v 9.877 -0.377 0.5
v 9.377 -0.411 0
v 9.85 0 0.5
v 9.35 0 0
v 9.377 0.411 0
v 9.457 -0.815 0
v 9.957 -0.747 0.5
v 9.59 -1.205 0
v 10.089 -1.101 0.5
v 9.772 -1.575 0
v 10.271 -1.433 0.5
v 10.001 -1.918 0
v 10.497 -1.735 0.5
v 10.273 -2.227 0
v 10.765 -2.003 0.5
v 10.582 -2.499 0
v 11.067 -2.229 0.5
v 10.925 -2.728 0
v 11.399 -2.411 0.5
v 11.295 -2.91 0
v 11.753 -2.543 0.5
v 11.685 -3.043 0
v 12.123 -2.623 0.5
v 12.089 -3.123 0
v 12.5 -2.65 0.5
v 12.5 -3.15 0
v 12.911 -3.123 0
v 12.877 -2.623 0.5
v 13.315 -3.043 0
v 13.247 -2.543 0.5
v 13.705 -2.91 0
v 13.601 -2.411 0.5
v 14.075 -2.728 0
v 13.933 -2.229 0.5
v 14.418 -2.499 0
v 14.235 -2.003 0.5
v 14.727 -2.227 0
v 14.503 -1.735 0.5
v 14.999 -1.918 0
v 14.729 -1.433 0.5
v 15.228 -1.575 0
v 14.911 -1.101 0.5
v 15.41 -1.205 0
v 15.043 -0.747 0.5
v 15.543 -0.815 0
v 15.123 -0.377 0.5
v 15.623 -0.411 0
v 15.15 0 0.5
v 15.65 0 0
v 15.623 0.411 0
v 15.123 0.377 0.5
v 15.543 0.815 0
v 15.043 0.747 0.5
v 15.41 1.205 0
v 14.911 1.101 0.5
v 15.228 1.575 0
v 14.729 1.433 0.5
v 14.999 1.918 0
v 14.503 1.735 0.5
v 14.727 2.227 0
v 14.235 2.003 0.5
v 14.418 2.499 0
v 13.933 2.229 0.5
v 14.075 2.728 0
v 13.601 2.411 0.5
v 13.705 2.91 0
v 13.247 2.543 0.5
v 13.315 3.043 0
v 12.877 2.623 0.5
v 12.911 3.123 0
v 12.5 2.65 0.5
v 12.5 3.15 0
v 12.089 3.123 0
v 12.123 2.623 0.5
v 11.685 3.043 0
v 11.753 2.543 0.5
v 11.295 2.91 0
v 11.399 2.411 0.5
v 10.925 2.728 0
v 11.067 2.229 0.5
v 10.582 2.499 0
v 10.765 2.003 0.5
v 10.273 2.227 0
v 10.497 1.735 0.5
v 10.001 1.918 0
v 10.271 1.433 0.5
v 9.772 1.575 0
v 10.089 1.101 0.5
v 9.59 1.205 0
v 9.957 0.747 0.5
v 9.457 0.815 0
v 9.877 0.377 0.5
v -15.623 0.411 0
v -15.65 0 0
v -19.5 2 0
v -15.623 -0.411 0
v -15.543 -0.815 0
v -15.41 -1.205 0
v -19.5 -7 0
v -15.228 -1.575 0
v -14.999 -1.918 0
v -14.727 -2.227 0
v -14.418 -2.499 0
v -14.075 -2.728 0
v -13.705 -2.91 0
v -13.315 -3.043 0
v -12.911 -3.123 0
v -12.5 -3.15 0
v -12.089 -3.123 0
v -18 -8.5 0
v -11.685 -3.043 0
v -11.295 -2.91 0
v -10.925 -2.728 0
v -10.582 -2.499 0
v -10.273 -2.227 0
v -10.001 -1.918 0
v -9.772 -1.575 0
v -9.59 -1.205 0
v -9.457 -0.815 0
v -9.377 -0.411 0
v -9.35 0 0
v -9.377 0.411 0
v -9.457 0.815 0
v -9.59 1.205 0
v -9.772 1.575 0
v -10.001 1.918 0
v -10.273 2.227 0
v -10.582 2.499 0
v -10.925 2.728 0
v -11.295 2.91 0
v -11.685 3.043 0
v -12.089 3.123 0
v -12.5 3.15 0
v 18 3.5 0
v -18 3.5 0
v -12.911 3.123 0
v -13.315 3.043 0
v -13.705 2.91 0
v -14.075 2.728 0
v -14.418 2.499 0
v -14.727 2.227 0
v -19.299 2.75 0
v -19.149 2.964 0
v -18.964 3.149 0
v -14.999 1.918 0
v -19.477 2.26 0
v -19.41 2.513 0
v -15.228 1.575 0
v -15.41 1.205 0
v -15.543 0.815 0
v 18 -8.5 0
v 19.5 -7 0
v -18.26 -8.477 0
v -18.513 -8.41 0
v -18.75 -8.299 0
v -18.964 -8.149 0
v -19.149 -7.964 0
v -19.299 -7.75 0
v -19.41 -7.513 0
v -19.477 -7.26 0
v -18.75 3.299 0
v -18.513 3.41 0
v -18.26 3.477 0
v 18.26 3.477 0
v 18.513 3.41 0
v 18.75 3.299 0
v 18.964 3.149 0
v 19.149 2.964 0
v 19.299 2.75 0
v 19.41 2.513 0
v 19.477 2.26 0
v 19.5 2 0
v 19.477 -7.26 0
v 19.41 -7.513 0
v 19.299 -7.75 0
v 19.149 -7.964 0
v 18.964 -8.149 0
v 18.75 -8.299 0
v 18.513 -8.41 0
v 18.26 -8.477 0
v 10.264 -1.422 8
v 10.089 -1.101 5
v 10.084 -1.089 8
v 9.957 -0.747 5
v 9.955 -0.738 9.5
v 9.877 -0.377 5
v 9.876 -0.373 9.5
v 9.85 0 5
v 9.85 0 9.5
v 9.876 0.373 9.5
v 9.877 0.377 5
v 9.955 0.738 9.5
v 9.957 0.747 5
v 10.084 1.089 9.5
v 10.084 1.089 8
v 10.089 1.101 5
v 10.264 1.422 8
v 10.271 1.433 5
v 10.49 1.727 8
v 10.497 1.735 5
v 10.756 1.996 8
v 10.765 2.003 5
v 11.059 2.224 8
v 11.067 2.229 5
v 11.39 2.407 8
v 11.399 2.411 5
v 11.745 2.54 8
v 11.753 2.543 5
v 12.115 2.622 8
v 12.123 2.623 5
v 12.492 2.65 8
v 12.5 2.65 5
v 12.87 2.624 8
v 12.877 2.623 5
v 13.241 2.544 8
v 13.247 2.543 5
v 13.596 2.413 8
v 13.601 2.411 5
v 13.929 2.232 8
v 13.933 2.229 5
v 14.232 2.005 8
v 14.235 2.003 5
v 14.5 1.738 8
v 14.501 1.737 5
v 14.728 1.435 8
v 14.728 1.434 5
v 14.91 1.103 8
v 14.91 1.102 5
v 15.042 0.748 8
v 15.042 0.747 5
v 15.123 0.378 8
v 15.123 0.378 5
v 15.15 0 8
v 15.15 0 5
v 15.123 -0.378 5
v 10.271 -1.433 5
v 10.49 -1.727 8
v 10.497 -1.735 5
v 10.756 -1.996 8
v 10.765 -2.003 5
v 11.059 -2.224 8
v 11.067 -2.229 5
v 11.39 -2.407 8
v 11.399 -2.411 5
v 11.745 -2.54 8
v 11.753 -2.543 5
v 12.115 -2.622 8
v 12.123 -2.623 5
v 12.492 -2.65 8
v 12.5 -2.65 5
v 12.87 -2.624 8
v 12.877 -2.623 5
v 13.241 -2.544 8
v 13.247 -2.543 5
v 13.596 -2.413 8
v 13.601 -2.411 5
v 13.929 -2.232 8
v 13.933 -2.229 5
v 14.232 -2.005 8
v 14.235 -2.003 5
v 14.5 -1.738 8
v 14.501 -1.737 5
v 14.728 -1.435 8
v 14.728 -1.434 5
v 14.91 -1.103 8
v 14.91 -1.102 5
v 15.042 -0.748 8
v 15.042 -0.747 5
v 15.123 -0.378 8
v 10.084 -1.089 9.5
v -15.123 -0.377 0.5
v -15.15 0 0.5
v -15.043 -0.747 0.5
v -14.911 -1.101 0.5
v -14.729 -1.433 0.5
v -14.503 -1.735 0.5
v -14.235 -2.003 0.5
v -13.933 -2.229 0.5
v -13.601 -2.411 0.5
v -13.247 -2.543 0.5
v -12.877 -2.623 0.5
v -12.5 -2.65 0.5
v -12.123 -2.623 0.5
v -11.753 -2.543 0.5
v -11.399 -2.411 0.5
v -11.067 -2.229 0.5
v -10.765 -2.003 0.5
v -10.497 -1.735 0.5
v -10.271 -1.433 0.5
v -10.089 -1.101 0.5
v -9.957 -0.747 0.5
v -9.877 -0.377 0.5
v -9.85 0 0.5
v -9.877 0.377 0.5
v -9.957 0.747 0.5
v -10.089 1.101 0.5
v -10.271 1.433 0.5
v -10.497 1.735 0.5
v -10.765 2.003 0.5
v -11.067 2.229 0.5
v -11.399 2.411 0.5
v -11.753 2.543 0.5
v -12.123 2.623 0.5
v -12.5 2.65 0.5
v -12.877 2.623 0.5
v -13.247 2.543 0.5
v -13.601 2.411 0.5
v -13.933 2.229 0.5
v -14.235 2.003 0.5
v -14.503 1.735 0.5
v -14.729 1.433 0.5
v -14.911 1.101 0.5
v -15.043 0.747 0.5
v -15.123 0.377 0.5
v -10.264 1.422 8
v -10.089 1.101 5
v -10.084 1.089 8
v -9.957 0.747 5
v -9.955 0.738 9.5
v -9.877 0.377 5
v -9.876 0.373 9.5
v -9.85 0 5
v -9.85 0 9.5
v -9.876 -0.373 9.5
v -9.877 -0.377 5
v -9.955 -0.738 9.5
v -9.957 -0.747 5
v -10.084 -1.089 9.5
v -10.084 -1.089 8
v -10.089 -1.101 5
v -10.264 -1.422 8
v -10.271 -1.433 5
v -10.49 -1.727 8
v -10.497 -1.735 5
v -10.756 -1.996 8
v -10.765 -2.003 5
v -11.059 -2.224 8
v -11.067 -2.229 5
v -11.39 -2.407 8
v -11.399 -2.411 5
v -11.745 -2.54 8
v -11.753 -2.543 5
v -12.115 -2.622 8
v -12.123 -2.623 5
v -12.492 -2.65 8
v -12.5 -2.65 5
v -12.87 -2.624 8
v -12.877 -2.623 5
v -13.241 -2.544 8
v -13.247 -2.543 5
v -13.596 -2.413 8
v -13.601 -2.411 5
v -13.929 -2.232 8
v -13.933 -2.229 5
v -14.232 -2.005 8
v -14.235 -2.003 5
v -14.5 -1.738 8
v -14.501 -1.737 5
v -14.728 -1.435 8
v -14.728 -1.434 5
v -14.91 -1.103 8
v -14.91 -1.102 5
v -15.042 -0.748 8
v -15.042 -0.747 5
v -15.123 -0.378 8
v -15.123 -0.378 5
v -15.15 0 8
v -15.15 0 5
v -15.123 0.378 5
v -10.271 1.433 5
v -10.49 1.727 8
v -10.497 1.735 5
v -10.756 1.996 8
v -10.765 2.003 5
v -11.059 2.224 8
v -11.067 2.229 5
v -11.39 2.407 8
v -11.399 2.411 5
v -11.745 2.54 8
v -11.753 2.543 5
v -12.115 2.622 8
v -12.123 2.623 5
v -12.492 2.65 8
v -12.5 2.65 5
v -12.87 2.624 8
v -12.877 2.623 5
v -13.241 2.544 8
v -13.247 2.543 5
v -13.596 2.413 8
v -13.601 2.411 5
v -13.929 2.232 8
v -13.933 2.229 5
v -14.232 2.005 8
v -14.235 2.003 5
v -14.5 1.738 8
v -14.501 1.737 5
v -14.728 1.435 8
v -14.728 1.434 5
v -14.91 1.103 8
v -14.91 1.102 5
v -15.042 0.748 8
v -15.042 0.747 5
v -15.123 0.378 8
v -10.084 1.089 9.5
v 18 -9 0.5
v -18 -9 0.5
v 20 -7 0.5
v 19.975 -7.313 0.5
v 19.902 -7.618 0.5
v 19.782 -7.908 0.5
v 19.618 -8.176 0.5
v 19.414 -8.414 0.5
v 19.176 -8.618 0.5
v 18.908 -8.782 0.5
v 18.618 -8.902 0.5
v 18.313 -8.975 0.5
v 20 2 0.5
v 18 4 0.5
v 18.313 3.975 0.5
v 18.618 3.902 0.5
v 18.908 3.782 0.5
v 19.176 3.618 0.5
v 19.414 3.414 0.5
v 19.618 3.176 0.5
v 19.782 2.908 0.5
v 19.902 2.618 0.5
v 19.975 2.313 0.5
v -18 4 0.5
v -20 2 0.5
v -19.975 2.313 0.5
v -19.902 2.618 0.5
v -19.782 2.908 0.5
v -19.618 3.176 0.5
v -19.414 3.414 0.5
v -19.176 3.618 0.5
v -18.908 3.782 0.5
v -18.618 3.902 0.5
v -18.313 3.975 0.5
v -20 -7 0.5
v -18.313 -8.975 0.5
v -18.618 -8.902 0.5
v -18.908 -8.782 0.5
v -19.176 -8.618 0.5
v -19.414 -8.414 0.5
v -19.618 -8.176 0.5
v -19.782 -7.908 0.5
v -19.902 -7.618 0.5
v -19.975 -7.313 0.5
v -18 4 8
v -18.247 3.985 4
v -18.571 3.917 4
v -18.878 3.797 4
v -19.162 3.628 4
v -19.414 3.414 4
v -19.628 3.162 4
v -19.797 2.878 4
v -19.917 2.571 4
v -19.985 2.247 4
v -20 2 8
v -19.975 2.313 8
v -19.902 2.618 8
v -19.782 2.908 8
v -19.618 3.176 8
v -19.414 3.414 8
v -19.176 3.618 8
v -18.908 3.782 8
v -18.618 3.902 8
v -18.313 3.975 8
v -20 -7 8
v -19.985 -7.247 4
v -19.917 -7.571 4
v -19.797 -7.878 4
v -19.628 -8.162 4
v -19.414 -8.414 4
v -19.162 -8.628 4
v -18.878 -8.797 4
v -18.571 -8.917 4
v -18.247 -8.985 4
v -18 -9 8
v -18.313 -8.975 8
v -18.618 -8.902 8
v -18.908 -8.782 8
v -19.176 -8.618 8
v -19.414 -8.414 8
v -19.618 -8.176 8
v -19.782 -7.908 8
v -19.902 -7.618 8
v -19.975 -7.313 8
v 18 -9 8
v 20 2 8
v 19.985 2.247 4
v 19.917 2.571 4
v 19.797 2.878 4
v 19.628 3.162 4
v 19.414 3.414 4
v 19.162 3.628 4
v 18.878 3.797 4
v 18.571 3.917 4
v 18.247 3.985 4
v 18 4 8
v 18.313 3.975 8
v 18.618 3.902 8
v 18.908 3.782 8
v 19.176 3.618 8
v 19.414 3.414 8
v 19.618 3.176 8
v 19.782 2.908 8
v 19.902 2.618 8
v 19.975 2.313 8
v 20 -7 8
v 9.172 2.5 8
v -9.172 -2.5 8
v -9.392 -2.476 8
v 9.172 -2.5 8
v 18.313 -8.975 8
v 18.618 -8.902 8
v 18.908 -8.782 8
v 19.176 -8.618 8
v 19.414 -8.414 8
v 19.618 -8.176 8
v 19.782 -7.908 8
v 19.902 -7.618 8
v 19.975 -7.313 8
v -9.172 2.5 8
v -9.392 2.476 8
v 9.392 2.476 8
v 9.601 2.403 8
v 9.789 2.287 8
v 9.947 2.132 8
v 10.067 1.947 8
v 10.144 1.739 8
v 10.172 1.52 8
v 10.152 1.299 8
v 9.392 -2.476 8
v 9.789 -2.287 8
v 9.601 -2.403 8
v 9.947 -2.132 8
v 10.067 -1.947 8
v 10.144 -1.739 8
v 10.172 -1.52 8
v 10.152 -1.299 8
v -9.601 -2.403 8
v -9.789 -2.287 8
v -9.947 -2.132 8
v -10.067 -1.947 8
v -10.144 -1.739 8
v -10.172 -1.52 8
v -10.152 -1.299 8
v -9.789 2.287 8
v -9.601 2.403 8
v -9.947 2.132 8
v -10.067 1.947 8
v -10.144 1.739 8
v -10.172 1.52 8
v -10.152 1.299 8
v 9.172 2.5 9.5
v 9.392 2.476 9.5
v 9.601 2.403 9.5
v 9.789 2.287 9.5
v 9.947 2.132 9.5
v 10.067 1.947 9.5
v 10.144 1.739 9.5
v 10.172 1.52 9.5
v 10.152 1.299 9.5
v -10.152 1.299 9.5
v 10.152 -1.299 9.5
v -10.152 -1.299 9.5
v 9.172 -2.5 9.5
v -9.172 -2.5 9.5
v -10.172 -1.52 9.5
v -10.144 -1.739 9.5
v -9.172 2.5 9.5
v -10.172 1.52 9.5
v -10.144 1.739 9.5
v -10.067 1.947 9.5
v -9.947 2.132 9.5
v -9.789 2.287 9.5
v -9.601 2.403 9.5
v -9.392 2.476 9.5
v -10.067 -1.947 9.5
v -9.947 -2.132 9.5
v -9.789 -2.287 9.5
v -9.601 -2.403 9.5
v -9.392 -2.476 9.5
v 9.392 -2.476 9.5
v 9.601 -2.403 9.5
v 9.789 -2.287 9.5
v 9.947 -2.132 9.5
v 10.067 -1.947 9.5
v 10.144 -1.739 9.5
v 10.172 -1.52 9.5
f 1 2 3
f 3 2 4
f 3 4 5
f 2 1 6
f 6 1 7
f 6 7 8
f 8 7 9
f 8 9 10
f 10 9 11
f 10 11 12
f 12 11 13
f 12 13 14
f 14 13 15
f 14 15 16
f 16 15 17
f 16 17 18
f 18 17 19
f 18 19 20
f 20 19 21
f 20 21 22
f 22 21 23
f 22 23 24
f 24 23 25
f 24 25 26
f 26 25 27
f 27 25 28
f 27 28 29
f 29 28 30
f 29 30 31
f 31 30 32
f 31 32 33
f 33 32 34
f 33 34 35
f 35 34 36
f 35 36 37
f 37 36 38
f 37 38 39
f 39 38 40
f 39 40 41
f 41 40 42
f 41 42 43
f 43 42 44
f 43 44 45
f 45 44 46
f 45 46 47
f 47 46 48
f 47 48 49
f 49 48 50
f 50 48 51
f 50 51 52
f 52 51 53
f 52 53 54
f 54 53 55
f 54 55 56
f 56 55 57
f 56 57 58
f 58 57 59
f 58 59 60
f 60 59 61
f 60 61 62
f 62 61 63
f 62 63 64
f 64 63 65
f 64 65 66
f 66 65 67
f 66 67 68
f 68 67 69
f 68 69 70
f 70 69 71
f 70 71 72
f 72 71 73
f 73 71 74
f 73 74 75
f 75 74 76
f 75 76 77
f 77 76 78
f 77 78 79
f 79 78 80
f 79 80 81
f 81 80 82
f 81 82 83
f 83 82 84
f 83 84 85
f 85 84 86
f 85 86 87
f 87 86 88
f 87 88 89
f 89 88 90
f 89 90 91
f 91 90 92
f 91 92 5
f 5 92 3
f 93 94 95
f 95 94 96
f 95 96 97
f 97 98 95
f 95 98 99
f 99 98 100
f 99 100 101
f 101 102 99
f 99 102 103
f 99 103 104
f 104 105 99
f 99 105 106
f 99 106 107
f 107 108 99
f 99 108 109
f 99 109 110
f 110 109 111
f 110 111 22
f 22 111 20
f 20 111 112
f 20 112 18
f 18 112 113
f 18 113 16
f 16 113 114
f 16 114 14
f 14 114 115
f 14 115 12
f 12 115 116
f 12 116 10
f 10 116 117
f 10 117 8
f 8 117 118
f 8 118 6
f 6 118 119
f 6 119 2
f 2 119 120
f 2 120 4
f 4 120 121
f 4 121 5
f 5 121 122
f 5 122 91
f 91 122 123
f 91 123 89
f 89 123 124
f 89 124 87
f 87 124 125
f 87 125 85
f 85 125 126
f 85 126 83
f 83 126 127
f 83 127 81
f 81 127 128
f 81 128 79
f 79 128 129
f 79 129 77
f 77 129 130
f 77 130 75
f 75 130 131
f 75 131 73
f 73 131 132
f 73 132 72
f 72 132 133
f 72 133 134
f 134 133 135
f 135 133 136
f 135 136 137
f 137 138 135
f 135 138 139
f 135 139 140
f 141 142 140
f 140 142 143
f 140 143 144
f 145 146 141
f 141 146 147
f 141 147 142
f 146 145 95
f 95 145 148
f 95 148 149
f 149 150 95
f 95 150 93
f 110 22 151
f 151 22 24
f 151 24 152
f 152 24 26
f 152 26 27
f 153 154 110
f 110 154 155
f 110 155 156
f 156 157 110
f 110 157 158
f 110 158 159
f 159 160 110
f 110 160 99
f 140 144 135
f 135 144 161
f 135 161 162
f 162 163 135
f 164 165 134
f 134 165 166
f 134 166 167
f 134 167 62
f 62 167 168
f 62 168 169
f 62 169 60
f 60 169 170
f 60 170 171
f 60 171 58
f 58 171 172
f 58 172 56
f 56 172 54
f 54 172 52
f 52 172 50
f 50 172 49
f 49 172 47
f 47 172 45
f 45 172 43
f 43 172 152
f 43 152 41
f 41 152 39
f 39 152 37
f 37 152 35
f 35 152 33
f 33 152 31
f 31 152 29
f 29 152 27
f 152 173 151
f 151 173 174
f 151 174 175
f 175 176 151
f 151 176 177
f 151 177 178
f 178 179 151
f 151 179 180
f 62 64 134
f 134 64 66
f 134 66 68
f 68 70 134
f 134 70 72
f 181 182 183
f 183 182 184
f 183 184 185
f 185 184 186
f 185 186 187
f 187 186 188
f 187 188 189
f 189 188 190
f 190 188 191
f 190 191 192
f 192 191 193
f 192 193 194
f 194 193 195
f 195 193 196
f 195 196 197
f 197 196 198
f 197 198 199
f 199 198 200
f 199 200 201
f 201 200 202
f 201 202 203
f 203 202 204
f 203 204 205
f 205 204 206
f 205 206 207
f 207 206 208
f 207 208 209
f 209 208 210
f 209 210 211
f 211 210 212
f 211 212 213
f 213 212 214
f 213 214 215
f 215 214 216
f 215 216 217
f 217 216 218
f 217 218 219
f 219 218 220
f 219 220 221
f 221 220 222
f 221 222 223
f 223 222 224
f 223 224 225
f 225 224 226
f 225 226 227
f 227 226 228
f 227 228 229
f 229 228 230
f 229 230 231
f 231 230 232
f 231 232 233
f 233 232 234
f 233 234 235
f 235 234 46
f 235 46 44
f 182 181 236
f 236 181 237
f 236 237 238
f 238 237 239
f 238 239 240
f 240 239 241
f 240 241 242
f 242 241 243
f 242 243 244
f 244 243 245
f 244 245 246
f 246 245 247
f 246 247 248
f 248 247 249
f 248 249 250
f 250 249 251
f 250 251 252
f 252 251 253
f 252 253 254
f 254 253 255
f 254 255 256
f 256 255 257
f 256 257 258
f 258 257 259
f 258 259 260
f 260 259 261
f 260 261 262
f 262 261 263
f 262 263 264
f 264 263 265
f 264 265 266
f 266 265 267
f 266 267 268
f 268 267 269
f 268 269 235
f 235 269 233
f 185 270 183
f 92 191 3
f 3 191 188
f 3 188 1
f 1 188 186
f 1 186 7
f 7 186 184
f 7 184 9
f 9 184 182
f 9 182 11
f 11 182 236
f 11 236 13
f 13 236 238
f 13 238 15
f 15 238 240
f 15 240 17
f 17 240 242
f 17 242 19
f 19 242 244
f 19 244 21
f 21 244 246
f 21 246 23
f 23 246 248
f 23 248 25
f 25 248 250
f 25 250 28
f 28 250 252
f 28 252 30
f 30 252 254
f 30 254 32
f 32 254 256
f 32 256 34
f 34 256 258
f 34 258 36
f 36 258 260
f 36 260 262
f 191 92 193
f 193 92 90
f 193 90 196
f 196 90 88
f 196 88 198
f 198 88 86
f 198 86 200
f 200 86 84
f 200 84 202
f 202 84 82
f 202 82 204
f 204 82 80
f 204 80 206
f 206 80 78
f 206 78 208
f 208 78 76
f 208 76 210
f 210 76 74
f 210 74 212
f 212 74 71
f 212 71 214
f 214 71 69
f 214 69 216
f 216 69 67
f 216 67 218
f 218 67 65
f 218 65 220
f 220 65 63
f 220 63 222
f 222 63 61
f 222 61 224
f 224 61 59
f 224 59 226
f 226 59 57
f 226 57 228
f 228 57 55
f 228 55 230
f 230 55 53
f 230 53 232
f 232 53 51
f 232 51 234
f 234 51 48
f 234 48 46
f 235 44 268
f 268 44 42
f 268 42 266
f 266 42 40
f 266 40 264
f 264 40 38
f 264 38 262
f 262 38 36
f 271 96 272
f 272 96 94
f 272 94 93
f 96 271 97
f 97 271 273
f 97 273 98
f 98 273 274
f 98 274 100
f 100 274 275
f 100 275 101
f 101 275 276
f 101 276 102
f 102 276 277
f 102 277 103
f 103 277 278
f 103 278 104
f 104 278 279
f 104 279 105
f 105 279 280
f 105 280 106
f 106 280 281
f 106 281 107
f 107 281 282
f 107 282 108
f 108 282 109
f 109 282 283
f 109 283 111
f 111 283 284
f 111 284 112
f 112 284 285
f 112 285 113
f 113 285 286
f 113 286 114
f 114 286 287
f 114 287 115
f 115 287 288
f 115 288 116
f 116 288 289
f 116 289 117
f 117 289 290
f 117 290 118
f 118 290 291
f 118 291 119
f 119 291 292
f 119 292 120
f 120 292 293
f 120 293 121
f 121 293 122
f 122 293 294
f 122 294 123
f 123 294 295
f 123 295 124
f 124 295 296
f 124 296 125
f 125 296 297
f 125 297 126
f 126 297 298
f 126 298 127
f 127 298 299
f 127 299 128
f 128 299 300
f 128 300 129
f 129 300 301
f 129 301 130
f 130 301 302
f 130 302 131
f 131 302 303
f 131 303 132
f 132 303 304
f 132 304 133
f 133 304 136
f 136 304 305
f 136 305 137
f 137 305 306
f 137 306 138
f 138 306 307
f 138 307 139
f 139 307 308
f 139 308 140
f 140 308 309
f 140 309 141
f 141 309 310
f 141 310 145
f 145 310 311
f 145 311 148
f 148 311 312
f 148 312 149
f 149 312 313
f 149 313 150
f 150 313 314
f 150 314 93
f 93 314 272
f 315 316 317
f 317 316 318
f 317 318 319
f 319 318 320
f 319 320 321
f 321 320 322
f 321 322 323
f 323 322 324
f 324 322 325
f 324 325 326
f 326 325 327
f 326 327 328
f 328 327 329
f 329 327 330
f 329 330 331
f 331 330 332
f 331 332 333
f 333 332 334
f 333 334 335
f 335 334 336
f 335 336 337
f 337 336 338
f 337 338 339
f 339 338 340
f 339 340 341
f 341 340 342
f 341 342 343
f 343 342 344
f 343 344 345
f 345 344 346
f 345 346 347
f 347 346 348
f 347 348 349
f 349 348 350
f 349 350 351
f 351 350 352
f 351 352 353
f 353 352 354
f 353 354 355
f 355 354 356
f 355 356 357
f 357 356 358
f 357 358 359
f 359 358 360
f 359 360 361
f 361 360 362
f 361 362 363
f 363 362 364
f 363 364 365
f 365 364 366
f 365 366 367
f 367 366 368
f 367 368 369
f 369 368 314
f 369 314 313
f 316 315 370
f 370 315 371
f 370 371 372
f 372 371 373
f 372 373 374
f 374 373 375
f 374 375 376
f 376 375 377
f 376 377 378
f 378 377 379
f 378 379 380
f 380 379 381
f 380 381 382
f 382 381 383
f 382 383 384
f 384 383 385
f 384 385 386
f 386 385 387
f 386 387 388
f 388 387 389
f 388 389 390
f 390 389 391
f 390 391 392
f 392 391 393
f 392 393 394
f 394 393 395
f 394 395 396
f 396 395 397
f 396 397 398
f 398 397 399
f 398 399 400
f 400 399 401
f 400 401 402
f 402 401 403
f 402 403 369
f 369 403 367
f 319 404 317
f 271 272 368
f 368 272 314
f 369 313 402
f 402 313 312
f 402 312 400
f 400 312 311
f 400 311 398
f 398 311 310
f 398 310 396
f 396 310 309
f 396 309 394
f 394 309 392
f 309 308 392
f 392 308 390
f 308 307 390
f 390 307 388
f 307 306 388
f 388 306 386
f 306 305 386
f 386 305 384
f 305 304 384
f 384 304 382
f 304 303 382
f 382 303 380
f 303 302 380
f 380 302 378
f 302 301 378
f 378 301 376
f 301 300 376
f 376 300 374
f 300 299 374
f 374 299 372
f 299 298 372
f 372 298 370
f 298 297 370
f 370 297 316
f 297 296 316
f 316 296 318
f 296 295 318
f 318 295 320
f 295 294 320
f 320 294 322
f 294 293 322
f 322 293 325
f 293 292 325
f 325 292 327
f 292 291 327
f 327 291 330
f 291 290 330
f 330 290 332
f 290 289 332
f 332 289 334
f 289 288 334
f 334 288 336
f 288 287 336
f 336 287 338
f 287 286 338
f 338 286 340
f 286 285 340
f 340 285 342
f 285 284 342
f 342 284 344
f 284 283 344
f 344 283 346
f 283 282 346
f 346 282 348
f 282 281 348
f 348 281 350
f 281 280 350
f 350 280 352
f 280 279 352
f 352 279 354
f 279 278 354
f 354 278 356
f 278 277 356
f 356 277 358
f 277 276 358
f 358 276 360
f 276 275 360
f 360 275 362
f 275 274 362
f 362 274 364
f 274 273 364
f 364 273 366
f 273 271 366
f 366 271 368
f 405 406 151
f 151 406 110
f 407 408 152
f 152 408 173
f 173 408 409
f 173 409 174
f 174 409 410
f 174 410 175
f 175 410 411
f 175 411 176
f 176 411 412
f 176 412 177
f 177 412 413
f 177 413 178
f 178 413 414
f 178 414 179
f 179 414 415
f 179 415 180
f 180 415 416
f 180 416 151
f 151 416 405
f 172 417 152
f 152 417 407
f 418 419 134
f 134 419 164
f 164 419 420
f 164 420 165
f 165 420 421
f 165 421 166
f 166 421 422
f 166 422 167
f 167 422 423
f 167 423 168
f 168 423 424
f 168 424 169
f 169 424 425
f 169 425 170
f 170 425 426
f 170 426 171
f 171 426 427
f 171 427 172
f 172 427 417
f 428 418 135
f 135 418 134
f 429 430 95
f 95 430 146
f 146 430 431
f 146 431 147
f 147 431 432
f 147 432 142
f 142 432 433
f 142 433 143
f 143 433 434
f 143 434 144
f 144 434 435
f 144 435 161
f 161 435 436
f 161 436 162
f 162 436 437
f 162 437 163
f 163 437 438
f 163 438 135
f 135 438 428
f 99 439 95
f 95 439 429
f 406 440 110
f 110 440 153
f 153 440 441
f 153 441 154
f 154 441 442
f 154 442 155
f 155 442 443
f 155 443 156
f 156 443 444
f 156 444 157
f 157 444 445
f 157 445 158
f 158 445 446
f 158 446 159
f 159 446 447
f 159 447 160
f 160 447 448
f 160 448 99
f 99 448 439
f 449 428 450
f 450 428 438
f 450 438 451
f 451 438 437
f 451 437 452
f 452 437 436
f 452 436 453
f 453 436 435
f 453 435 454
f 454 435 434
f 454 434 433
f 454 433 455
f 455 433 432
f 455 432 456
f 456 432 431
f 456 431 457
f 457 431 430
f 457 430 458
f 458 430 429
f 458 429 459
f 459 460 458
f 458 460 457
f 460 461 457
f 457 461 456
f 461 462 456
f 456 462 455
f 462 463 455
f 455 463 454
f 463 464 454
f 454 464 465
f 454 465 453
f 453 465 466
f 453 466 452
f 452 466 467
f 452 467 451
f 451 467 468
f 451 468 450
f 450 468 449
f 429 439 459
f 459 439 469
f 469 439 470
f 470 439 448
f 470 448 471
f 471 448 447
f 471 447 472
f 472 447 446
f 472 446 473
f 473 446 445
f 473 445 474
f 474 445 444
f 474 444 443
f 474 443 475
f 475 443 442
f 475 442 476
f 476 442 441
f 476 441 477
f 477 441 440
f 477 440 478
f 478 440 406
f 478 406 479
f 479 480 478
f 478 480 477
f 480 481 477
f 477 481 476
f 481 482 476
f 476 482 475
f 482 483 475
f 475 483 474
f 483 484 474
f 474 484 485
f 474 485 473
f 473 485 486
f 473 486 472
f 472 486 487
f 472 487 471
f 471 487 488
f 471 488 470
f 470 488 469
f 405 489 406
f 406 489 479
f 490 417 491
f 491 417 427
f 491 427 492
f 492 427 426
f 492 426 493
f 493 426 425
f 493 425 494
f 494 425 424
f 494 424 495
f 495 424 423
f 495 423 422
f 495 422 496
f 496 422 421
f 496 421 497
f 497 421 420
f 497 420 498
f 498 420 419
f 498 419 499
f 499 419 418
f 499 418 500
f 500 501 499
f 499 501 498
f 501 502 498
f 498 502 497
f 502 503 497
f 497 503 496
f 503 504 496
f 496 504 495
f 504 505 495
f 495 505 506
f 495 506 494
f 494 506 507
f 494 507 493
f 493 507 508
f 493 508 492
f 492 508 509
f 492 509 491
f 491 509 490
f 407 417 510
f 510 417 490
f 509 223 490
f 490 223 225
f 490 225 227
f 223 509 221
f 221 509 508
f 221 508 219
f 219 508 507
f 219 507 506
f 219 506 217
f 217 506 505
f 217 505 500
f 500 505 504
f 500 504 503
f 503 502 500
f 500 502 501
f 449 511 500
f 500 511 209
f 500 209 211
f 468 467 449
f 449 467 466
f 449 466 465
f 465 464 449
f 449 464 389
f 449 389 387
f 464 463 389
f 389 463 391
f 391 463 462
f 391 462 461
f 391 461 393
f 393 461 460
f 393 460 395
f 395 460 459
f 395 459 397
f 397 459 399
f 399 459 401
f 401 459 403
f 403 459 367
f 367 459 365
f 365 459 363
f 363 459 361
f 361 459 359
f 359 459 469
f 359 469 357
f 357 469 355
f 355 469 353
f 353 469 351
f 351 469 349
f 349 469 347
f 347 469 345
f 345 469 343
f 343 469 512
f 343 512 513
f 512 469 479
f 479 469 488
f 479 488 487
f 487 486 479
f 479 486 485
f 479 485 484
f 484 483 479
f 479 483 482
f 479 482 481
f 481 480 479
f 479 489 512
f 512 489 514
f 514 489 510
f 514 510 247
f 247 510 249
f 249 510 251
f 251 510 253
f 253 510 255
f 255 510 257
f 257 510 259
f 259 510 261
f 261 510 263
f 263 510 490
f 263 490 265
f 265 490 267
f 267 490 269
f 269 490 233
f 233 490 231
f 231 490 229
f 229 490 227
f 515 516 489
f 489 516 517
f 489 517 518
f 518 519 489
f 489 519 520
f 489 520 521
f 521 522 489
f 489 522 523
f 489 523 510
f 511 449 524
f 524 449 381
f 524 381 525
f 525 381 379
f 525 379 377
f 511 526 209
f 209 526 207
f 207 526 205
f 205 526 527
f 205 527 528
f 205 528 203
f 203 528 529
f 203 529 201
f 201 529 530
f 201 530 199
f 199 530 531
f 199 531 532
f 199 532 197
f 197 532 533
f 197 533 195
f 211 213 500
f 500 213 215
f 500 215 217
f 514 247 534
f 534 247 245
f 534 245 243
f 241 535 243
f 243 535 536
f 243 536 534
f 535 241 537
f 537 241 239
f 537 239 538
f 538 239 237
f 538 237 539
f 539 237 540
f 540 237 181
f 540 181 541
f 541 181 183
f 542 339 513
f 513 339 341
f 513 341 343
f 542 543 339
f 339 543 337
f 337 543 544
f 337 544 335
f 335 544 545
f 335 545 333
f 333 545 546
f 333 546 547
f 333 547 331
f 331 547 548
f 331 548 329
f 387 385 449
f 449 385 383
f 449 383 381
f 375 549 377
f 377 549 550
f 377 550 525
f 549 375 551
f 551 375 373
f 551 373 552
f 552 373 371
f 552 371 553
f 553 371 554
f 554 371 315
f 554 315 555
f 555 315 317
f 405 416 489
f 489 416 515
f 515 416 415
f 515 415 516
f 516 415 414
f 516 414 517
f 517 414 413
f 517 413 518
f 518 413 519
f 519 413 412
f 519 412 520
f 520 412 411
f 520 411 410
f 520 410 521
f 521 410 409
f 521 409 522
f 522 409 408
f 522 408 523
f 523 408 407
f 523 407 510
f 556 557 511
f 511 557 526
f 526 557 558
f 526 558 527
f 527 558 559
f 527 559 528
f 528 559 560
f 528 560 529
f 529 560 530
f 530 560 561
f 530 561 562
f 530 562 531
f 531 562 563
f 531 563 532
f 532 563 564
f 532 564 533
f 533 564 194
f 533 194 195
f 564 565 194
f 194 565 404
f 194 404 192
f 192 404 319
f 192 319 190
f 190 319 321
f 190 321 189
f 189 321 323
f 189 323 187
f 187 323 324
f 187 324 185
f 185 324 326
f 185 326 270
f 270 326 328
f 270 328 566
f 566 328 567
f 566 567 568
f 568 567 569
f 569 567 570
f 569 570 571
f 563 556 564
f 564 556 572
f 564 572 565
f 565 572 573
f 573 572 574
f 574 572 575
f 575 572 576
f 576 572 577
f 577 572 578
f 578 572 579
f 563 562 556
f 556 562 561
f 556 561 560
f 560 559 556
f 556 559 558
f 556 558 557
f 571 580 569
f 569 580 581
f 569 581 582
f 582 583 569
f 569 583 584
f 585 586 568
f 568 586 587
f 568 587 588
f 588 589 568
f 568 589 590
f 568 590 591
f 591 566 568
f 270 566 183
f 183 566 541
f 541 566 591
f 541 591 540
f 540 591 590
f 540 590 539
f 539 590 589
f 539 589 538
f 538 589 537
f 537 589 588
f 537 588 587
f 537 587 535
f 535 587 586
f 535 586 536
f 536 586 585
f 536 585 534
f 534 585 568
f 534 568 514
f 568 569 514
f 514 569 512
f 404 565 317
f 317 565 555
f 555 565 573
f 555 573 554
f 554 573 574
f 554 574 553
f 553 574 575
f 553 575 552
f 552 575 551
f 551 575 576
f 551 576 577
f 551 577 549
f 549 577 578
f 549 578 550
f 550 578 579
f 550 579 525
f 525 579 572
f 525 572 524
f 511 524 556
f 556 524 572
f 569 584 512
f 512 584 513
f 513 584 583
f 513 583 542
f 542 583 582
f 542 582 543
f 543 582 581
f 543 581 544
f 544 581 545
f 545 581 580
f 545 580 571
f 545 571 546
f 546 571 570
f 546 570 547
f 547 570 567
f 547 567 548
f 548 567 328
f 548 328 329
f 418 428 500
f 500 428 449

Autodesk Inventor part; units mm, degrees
ref_plane "YZ Plane" through (0, 0, 0) normal (1, 0, 0) x (0, 1, 0)
ref_plane "XZ Plane" through (0, 0, 0) normal (0, 1, 0) x (-1, 0, 0)
ref_plane "XY Plane" through (0, 0, 0) normal (0, 0, 1) x (1, 0, 0)
sketch "Sketch1" plane through (0, 0, 0) normal (0, 0, 1) x (1, 0, 0)
  line L0 (-20, -4) -> (20, -4)
  line L1 (20, -4) -> (20, 4)
  line L2 (20, 4) -> (-20, 4)
  line L3 (-20, 4) -> (-20, -4)
  line L4 (-20, -4) -> (20, 4) construction
  line L5 (20, -4) -> (-20, 4) construction
  point P0 (0, 0)
  dimension "d0" = 8
  dimension "d1" = 40
extrude "Extrusion1" add sketch "Sketch1" along normal blind 8
sketch "Sketch2" plane through (-20, -4, 0) normal (0, -1, 0) x (1, 0, 0)
  line L0 (0, 0) -> (40, 0) projected
  line L1 (40, 0) -> (40, 8) projected
  line L2 (0, 8) -> (40, 8) projected
  line L3 (0, 0) -> (0, 8) projected
  point P0 (20, 0)
extrude "Extrusion2" add sketch "Sketch2" along normal blind 5
sketch "Sketch3" plane through (0, 0, 8) normal (0, 0, 1) x (1, 0, 0)
  line L0 (-15, -3) -> (15, -3) construction
  line L1 (15, -3) -> (15, 3) construction
  line L2 (15, 3) -> (-15, 3) construction
  line L3 (-15, 3) -> (-15, -3) construction
  line L4 (-15, -3) -> (15, 3) construction
  line L5 (15, -3) -> (-15, 3) construction
  line L6 (-28, 0) -> (28, 0) construction
  circle A0 centre (-12.5, 0) radius 2.65
  line L7 (0, 6.6) -> (0, -11.6) construction
  line L8 (15, 3) -> (15, -3) construction
  circle A1 centre (12.5, 0) radius 2.65
  point P0 (0, 0)
  dimension "d6" = 6
  dimension "d7" = 30
  dimension "d8" = 5.3
  dimension "d20" = 25
extrude "Extrusion3" cut sketch "Sketch3" against normal through all
sketch "Sketch4" plane through (0, 0, 8) normal (0, 0, 1) x (1, 0, 0)
  line L0 (-13, -2.5) -> (13, -2.5)
  line L1 (13, -2.5) -> (13, 2.5)
  line L2 (13, 2.5) -> (-13, 2.5)
  line L3 (-13, 2.5) -> (-13, -2.5)
  line L4 (-13, -2.5) -> (13, 2.5) construction
  line L5 (13, -2.5) -> (-13, 2.5) construction
  circle A0 centre (-12.5, 0) radius 2.65 projected
  circle A1 centre (12.5, 0) radius 2.65 projected
  point P0 (0, 0)
  point P1 (-8.1211, 2.5)
  point P2 (-8.1211, -2.5)
  point P3 (-11.6211, -2.5)
  point P4 (-11.6211, 2.5)
  point P5 (11.6211, -2.5)
  point P6 (11.6211, 2.5)
  dimension "d11" = 26
  dimension "d12" = 5
extrude "Extrusion4" add sketch "Sketch4" along normal blind 1.5 contours A0 L2 A1 L0
fillet "Fillet1" radius 1 4 edges at (-11.6211, -2.5, 8.75) (-11.6211, 2.5, 8.75) (11.6211, -2.5, 8.75) (11.6211, 2.5, 8.75)
fillet "Fillet2" radius 2 4 edges at (-20, -9, 4) (-20, 4, 4) (20, -9, 4) (20, 4, 4)
chamfer "Chamfer1" distance 0.5 angle 45 6 edges at (0, -9, 0) (20, -2.5, 0) (0, 4, 0) (-20, -2.5, 0) (-15.15, 0, 0) (9.85, 0, 0)
properties part number "_3DPrint"
